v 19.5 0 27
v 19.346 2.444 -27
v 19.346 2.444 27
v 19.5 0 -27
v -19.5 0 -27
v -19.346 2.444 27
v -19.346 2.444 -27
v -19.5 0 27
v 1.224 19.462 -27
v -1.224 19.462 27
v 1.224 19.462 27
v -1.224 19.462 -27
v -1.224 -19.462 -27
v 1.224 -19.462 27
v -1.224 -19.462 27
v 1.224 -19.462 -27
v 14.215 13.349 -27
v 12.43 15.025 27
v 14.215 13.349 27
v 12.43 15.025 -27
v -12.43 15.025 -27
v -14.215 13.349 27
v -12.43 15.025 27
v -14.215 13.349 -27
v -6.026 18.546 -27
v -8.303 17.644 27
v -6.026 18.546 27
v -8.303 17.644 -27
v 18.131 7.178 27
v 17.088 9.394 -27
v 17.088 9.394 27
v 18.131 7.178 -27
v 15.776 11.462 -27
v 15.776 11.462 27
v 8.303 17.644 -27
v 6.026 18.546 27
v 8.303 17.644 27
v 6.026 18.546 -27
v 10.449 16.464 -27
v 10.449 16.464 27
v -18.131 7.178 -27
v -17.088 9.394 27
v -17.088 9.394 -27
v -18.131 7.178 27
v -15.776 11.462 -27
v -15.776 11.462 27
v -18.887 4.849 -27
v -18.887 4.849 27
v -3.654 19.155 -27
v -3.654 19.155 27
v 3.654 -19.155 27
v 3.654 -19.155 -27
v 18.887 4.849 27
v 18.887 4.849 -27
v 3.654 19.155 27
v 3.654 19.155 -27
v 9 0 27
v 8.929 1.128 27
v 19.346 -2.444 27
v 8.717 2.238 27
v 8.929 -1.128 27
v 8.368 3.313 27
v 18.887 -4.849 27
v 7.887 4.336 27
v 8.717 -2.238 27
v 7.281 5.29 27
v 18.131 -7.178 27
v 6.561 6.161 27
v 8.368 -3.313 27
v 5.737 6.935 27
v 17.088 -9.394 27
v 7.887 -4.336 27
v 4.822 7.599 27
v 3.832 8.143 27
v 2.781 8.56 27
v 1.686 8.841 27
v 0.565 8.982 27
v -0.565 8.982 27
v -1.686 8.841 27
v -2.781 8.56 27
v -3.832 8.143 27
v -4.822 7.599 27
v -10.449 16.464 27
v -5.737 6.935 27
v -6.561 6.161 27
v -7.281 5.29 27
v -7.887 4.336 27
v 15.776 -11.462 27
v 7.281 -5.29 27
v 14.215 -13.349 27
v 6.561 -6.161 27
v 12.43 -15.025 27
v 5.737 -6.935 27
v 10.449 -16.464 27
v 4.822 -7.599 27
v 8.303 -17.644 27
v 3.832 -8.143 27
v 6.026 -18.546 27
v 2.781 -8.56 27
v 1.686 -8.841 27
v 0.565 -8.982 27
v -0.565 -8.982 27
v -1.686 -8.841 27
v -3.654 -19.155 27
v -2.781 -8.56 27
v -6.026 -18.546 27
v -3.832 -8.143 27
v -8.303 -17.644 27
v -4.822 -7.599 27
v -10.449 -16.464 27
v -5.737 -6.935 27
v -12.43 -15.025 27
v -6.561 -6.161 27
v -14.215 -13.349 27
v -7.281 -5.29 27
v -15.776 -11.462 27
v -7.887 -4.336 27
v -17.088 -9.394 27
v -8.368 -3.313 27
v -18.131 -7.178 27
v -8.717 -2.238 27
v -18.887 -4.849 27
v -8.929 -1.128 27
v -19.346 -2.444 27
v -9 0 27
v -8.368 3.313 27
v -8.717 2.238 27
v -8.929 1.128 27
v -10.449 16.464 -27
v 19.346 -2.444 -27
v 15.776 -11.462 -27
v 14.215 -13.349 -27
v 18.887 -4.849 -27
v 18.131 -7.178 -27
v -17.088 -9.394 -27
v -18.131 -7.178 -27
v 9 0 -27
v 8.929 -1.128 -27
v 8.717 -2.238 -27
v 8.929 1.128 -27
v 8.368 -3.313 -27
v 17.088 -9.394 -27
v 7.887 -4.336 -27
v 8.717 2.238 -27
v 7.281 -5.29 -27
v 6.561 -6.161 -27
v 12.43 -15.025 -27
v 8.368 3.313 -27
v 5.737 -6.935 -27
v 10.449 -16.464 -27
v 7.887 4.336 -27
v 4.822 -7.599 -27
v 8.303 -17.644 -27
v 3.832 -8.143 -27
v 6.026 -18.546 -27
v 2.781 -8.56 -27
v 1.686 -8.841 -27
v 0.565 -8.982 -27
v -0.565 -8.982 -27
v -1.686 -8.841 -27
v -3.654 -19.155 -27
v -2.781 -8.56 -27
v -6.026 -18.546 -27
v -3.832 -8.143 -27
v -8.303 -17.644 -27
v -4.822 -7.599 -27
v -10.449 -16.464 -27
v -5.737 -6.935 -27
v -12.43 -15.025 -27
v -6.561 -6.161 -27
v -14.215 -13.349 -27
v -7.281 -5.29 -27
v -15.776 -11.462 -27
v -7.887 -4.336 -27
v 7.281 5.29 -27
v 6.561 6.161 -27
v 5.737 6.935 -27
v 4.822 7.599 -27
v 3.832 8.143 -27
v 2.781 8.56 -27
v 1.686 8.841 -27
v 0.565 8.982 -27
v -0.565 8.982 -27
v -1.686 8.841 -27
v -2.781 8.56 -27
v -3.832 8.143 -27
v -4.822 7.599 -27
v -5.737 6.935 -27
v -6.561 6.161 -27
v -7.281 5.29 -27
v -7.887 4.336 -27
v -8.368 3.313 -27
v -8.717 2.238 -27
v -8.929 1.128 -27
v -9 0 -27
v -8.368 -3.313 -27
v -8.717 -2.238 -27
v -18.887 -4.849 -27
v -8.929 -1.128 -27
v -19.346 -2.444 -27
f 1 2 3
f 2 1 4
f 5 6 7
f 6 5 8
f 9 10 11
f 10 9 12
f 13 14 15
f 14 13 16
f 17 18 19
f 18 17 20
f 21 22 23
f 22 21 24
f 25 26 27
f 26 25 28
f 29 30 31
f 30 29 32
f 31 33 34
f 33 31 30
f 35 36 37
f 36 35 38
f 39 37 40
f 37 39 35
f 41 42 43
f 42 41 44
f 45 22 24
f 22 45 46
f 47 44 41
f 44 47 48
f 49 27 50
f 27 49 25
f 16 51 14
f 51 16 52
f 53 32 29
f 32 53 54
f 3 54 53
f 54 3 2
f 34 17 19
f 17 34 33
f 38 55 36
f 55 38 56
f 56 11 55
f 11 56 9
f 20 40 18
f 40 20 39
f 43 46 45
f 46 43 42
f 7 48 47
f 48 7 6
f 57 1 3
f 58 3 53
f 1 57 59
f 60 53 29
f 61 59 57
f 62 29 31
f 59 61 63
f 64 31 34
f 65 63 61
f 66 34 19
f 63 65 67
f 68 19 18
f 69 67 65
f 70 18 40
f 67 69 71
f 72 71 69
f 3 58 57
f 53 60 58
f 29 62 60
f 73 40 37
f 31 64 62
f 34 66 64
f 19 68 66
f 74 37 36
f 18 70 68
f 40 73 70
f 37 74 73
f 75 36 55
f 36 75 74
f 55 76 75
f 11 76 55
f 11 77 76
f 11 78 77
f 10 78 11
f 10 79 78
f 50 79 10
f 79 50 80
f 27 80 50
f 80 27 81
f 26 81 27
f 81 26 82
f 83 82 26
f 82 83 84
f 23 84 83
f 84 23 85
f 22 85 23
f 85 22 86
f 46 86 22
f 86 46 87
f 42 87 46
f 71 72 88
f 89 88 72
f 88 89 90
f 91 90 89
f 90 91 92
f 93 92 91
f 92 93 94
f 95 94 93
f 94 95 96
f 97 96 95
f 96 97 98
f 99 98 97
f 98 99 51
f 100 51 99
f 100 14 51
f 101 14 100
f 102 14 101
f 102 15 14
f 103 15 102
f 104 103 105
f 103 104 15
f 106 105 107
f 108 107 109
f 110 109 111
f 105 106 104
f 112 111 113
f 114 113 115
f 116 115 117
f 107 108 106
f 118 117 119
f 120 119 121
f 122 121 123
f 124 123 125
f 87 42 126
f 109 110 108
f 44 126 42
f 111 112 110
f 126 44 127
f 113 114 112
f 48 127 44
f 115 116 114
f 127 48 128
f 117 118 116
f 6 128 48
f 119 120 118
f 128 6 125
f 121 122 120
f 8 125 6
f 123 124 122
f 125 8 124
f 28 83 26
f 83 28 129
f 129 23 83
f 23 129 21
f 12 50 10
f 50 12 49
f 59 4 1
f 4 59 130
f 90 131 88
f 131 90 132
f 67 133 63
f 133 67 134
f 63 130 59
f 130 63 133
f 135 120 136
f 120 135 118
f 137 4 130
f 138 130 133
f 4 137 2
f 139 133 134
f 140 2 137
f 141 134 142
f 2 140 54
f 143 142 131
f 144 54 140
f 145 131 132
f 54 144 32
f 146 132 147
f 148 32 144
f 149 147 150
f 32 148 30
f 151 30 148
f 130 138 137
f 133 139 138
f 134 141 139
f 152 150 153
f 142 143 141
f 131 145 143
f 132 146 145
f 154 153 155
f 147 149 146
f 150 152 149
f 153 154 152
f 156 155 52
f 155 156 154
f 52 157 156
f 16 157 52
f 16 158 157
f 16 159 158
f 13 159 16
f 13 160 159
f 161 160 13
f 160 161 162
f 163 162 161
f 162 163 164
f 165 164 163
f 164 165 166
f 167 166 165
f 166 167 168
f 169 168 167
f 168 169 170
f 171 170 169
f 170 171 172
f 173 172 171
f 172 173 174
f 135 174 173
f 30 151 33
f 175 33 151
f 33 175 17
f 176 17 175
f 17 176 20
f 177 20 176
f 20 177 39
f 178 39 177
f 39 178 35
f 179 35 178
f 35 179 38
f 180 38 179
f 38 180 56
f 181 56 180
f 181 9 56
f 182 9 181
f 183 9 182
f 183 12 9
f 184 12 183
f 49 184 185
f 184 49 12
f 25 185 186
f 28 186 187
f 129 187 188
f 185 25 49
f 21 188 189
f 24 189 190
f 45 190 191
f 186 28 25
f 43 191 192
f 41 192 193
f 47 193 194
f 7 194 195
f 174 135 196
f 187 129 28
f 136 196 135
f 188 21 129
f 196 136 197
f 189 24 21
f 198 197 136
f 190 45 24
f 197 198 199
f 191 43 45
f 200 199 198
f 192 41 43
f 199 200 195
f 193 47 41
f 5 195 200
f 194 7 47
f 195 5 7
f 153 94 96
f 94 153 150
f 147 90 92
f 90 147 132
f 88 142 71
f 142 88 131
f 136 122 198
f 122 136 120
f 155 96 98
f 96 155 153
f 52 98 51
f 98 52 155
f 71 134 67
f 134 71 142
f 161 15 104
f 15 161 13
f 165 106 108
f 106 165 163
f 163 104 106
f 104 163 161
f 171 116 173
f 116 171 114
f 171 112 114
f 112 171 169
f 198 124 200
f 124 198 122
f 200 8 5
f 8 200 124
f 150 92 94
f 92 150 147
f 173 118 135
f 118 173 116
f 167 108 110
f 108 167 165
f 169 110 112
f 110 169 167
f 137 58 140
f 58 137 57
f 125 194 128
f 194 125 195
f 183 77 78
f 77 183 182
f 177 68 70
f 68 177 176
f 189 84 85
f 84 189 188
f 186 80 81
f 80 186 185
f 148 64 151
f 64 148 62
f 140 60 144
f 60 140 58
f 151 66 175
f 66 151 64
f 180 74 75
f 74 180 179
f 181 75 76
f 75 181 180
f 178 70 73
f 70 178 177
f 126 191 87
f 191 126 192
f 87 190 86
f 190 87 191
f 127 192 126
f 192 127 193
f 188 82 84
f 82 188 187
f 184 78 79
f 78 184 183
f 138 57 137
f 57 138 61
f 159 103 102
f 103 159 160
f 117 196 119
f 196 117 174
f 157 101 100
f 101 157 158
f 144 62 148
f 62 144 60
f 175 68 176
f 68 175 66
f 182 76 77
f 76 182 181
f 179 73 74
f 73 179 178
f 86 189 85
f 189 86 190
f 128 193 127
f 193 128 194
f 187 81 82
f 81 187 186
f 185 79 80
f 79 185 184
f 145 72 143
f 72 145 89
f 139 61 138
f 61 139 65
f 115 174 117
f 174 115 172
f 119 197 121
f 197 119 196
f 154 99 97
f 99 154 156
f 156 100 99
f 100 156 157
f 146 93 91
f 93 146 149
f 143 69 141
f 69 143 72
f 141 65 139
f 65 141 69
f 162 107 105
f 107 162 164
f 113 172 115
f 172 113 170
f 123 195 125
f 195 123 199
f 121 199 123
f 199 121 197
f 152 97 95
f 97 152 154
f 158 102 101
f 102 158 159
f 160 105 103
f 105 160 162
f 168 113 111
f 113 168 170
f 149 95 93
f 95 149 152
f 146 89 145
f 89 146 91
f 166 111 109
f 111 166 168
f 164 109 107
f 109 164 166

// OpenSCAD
$fn = 50;


difference() {
	union() {
		translate(v = [0, 0, -27.0000000000]) {
			cylinder(h = 54, r = 19.5000000000);
		}
	}
	union() {
		translate(v = [0, 0, -100.0000000000]) {
			cylinder(h = 200, r = 9);
		}
	}
}
